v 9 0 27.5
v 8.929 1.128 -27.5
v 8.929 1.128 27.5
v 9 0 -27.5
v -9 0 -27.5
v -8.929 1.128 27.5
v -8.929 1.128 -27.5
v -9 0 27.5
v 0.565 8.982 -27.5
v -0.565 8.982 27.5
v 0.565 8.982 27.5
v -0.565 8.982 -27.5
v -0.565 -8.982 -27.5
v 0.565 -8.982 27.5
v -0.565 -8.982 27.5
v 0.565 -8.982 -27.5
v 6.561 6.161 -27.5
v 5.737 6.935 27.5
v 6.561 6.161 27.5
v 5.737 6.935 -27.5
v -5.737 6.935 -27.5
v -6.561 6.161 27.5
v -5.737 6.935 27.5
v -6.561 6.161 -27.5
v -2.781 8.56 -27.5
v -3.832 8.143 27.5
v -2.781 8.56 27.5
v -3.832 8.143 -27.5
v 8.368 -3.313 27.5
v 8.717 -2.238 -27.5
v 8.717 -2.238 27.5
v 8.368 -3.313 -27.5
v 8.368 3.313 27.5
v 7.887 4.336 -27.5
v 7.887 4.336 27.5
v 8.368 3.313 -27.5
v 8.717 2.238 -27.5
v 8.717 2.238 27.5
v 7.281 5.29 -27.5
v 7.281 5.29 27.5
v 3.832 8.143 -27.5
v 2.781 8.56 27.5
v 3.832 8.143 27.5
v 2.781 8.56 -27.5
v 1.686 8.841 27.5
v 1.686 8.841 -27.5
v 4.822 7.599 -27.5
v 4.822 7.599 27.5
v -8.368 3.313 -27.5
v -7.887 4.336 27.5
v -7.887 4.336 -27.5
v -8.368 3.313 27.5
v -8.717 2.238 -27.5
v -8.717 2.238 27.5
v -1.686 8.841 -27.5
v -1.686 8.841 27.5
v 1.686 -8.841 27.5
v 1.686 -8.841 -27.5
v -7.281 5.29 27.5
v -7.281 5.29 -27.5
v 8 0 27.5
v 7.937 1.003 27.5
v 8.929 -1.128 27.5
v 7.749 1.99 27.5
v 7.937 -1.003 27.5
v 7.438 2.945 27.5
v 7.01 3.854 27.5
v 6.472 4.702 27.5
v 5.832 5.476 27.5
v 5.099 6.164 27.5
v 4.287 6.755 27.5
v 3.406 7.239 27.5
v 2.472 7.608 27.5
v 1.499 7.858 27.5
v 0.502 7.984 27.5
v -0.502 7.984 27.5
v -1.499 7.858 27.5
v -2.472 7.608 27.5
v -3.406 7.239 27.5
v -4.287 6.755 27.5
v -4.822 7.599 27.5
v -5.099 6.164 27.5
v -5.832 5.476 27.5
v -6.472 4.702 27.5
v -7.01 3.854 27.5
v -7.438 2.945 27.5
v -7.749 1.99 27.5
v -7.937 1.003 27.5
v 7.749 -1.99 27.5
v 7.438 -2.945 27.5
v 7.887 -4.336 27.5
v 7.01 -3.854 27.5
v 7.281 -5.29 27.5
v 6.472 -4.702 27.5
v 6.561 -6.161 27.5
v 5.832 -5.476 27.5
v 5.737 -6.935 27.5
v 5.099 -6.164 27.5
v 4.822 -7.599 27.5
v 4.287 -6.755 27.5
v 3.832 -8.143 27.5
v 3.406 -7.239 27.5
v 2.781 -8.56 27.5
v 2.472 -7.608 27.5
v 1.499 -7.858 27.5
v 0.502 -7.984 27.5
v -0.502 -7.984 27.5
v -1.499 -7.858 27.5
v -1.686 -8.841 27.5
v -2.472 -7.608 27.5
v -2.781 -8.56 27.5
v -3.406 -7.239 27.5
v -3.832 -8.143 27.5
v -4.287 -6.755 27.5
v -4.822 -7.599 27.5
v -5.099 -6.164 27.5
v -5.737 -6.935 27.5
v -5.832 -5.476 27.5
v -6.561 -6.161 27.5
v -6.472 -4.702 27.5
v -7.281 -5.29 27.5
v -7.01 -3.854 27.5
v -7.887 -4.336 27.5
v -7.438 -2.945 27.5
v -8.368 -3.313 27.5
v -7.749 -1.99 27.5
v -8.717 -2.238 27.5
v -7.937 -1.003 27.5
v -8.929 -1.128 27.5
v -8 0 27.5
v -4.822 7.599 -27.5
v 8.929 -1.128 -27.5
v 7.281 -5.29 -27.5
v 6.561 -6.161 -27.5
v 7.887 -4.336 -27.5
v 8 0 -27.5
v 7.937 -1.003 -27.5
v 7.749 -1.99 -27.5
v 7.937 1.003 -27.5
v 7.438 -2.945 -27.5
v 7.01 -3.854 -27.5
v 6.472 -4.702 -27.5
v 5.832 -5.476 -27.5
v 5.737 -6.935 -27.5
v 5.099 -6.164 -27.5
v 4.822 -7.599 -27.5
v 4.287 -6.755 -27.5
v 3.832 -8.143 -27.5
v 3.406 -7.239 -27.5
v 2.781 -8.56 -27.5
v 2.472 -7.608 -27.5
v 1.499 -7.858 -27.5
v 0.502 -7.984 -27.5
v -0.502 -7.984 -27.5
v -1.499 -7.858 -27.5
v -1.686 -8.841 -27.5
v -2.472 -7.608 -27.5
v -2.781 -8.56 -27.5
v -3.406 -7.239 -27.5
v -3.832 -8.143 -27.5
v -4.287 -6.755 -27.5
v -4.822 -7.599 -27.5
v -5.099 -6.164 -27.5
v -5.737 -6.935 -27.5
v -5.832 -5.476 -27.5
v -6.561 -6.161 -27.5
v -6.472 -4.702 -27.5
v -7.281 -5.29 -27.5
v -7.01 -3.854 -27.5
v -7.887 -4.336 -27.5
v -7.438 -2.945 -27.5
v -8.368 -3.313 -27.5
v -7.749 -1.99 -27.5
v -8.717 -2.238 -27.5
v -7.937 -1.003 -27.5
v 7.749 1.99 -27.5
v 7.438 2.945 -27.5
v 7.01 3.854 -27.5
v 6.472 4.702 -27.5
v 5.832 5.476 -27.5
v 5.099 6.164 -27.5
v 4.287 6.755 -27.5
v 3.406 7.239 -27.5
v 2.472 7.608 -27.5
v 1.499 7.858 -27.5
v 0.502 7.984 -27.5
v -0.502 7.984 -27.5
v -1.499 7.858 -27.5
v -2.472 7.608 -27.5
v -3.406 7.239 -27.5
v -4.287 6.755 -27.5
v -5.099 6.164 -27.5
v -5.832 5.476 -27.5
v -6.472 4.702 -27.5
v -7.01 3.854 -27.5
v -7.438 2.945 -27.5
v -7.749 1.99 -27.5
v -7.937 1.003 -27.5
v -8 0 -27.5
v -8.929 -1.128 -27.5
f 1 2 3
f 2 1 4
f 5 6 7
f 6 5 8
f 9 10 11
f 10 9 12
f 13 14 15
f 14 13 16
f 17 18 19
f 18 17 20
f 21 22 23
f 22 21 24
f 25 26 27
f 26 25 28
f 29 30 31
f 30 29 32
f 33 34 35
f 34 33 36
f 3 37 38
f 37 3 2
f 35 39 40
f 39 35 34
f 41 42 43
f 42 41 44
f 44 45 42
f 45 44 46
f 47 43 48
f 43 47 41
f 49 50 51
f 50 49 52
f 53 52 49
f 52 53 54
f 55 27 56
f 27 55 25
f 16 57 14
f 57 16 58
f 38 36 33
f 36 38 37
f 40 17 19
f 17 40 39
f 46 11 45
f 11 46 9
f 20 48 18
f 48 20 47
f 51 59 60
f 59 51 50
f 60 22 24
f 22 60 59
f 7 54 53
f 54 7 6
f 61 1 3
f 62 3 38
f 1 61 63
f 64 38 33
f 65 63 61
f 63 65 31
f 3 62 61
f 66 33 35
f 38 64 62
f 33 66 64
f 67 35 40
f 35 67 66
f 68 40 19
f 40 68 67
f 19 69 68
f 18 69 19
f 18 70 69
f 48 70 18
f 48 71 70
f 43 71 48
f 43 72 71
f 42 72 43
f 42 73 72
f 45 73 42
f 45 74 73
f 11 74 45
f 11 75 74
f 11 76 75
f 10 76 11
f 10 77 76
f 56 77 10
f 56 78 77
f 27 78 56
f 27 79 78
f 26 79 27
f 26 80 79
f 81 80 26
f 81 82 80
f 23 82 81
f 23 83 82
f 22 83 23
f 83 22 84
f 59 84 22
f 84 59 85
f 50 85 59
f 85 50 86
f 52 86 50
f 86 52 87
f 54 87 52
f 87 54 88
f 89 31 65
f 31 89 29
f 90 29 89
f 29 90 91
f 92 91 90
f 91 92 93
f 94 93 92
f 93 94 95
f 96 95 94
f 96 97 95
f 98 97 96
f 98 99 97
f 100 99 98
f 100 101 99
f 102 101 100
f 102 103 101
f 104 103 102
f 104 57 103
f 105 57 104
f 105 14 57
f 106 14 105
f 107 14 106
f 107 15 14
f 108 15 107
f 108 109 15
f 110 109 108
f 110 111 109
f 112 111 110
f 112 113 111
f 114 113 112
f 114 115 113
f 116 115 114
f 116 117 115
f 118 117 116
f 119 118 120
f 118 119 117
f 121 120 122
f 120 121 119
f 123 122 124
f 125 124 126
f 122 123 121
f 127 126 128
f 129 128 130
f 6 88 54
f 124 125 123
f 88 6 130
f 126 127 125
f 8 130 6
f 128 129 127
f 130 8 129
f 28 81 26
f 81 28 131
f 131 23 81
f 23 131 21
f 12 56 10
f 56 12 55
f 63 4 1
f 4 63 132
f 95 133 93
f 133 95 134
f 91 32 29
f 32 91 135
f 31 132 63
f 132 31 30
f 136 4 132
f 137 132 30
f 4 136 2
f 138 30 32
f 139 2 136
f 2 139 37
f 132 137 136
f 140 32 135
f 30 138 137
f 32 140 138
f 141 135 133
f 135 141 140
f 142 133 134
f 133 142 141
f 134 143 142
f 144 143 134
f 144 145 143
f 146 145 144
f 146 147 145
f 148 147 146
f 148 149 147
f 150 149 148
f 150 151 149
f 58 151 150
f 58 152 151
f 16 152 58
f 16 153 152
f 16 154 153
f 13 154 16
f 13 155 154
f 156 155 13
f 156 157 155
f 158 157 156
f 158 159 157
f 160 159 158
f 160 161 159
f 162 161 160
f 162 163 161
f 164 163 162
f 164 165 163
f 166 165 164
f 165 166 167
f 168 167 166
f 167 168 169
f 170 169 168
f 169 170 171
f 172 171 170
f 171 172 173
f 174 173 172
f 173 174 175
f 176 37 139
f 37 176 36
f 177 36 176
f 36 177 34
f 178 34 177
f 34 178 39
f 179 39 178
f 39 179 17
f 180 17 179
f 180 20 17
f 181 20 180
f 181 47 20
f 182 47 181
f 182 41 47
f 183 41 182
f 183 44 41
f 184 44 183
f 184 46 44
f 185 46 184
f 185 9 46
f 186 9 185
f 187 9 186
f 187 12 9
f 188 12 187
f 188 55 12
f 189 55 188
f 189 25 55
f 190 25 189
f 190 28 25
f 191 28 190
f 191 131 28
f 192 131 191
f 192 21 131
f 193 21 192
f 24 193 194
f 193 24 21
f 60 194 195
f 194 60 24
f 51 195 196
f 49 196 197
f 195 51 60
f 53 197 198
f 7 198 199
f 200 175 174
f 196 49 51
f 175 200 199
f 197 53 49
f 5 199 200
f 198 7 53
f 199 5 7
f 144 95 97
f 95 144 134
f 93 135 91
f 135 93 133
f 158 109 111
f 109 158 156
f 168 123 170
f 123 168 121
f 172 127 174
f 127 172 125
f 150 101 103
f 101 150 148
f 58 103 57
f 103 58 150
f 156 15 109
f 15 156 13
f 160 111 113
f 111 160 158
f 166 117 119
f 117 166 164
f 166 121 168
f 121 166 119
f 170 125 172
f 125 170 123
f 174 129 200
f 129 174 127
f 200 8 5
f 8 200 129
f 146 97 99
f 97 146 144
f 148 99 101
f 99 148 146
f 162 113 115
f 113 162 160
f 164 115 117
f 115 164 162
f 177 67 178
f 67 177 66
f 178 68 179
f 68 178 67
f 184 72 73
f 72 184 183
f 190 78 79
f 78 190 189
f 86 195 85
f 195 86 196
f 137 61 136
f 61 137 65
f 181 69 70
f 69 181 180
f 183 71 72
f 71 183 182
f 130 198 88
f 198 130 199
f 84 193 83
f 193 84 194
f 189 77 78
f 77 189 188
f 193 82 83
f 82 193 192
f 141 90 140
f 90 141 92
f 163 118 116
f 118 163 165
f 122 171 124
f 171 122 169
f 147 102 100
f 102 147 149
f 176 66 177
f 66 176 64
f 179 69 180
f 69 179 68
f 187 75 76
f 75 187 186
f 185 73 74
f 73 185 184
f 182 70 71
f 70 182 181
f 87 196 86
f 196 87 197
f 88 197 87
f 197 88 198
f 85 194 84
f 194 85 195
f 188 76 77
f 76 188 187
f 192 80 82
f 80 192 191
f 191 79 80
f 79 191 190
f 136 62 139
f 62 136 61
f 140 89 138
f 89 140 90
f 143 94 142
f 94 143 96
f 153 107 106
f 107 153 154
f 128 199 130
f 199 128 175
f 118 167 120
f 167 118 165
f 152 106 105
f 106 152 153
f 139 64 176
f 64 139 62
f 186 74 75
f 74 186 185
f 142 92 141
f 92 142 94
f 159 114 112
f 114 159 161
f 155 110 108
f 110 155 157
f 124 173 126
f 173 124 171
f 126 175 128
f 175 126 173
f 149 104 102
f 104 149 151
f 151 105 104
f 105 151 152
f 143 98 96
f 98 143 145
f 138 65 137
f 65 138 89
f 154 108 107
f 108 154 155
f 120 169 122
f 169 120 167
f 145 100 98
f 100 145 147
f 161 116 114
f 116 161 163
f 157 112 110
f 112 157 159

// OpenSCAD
$fn = 50;


difference() {
	union() {
		translate(v = [0, 0, -27.5000000000]) {
			cylinder(h = 55, r = 9.0000000000);
		}
	}
	union() {
		translate(v = [0, 0, -100.0000000000]) {
			cylinder(h = 200, r = 8);
		}
	}
}
